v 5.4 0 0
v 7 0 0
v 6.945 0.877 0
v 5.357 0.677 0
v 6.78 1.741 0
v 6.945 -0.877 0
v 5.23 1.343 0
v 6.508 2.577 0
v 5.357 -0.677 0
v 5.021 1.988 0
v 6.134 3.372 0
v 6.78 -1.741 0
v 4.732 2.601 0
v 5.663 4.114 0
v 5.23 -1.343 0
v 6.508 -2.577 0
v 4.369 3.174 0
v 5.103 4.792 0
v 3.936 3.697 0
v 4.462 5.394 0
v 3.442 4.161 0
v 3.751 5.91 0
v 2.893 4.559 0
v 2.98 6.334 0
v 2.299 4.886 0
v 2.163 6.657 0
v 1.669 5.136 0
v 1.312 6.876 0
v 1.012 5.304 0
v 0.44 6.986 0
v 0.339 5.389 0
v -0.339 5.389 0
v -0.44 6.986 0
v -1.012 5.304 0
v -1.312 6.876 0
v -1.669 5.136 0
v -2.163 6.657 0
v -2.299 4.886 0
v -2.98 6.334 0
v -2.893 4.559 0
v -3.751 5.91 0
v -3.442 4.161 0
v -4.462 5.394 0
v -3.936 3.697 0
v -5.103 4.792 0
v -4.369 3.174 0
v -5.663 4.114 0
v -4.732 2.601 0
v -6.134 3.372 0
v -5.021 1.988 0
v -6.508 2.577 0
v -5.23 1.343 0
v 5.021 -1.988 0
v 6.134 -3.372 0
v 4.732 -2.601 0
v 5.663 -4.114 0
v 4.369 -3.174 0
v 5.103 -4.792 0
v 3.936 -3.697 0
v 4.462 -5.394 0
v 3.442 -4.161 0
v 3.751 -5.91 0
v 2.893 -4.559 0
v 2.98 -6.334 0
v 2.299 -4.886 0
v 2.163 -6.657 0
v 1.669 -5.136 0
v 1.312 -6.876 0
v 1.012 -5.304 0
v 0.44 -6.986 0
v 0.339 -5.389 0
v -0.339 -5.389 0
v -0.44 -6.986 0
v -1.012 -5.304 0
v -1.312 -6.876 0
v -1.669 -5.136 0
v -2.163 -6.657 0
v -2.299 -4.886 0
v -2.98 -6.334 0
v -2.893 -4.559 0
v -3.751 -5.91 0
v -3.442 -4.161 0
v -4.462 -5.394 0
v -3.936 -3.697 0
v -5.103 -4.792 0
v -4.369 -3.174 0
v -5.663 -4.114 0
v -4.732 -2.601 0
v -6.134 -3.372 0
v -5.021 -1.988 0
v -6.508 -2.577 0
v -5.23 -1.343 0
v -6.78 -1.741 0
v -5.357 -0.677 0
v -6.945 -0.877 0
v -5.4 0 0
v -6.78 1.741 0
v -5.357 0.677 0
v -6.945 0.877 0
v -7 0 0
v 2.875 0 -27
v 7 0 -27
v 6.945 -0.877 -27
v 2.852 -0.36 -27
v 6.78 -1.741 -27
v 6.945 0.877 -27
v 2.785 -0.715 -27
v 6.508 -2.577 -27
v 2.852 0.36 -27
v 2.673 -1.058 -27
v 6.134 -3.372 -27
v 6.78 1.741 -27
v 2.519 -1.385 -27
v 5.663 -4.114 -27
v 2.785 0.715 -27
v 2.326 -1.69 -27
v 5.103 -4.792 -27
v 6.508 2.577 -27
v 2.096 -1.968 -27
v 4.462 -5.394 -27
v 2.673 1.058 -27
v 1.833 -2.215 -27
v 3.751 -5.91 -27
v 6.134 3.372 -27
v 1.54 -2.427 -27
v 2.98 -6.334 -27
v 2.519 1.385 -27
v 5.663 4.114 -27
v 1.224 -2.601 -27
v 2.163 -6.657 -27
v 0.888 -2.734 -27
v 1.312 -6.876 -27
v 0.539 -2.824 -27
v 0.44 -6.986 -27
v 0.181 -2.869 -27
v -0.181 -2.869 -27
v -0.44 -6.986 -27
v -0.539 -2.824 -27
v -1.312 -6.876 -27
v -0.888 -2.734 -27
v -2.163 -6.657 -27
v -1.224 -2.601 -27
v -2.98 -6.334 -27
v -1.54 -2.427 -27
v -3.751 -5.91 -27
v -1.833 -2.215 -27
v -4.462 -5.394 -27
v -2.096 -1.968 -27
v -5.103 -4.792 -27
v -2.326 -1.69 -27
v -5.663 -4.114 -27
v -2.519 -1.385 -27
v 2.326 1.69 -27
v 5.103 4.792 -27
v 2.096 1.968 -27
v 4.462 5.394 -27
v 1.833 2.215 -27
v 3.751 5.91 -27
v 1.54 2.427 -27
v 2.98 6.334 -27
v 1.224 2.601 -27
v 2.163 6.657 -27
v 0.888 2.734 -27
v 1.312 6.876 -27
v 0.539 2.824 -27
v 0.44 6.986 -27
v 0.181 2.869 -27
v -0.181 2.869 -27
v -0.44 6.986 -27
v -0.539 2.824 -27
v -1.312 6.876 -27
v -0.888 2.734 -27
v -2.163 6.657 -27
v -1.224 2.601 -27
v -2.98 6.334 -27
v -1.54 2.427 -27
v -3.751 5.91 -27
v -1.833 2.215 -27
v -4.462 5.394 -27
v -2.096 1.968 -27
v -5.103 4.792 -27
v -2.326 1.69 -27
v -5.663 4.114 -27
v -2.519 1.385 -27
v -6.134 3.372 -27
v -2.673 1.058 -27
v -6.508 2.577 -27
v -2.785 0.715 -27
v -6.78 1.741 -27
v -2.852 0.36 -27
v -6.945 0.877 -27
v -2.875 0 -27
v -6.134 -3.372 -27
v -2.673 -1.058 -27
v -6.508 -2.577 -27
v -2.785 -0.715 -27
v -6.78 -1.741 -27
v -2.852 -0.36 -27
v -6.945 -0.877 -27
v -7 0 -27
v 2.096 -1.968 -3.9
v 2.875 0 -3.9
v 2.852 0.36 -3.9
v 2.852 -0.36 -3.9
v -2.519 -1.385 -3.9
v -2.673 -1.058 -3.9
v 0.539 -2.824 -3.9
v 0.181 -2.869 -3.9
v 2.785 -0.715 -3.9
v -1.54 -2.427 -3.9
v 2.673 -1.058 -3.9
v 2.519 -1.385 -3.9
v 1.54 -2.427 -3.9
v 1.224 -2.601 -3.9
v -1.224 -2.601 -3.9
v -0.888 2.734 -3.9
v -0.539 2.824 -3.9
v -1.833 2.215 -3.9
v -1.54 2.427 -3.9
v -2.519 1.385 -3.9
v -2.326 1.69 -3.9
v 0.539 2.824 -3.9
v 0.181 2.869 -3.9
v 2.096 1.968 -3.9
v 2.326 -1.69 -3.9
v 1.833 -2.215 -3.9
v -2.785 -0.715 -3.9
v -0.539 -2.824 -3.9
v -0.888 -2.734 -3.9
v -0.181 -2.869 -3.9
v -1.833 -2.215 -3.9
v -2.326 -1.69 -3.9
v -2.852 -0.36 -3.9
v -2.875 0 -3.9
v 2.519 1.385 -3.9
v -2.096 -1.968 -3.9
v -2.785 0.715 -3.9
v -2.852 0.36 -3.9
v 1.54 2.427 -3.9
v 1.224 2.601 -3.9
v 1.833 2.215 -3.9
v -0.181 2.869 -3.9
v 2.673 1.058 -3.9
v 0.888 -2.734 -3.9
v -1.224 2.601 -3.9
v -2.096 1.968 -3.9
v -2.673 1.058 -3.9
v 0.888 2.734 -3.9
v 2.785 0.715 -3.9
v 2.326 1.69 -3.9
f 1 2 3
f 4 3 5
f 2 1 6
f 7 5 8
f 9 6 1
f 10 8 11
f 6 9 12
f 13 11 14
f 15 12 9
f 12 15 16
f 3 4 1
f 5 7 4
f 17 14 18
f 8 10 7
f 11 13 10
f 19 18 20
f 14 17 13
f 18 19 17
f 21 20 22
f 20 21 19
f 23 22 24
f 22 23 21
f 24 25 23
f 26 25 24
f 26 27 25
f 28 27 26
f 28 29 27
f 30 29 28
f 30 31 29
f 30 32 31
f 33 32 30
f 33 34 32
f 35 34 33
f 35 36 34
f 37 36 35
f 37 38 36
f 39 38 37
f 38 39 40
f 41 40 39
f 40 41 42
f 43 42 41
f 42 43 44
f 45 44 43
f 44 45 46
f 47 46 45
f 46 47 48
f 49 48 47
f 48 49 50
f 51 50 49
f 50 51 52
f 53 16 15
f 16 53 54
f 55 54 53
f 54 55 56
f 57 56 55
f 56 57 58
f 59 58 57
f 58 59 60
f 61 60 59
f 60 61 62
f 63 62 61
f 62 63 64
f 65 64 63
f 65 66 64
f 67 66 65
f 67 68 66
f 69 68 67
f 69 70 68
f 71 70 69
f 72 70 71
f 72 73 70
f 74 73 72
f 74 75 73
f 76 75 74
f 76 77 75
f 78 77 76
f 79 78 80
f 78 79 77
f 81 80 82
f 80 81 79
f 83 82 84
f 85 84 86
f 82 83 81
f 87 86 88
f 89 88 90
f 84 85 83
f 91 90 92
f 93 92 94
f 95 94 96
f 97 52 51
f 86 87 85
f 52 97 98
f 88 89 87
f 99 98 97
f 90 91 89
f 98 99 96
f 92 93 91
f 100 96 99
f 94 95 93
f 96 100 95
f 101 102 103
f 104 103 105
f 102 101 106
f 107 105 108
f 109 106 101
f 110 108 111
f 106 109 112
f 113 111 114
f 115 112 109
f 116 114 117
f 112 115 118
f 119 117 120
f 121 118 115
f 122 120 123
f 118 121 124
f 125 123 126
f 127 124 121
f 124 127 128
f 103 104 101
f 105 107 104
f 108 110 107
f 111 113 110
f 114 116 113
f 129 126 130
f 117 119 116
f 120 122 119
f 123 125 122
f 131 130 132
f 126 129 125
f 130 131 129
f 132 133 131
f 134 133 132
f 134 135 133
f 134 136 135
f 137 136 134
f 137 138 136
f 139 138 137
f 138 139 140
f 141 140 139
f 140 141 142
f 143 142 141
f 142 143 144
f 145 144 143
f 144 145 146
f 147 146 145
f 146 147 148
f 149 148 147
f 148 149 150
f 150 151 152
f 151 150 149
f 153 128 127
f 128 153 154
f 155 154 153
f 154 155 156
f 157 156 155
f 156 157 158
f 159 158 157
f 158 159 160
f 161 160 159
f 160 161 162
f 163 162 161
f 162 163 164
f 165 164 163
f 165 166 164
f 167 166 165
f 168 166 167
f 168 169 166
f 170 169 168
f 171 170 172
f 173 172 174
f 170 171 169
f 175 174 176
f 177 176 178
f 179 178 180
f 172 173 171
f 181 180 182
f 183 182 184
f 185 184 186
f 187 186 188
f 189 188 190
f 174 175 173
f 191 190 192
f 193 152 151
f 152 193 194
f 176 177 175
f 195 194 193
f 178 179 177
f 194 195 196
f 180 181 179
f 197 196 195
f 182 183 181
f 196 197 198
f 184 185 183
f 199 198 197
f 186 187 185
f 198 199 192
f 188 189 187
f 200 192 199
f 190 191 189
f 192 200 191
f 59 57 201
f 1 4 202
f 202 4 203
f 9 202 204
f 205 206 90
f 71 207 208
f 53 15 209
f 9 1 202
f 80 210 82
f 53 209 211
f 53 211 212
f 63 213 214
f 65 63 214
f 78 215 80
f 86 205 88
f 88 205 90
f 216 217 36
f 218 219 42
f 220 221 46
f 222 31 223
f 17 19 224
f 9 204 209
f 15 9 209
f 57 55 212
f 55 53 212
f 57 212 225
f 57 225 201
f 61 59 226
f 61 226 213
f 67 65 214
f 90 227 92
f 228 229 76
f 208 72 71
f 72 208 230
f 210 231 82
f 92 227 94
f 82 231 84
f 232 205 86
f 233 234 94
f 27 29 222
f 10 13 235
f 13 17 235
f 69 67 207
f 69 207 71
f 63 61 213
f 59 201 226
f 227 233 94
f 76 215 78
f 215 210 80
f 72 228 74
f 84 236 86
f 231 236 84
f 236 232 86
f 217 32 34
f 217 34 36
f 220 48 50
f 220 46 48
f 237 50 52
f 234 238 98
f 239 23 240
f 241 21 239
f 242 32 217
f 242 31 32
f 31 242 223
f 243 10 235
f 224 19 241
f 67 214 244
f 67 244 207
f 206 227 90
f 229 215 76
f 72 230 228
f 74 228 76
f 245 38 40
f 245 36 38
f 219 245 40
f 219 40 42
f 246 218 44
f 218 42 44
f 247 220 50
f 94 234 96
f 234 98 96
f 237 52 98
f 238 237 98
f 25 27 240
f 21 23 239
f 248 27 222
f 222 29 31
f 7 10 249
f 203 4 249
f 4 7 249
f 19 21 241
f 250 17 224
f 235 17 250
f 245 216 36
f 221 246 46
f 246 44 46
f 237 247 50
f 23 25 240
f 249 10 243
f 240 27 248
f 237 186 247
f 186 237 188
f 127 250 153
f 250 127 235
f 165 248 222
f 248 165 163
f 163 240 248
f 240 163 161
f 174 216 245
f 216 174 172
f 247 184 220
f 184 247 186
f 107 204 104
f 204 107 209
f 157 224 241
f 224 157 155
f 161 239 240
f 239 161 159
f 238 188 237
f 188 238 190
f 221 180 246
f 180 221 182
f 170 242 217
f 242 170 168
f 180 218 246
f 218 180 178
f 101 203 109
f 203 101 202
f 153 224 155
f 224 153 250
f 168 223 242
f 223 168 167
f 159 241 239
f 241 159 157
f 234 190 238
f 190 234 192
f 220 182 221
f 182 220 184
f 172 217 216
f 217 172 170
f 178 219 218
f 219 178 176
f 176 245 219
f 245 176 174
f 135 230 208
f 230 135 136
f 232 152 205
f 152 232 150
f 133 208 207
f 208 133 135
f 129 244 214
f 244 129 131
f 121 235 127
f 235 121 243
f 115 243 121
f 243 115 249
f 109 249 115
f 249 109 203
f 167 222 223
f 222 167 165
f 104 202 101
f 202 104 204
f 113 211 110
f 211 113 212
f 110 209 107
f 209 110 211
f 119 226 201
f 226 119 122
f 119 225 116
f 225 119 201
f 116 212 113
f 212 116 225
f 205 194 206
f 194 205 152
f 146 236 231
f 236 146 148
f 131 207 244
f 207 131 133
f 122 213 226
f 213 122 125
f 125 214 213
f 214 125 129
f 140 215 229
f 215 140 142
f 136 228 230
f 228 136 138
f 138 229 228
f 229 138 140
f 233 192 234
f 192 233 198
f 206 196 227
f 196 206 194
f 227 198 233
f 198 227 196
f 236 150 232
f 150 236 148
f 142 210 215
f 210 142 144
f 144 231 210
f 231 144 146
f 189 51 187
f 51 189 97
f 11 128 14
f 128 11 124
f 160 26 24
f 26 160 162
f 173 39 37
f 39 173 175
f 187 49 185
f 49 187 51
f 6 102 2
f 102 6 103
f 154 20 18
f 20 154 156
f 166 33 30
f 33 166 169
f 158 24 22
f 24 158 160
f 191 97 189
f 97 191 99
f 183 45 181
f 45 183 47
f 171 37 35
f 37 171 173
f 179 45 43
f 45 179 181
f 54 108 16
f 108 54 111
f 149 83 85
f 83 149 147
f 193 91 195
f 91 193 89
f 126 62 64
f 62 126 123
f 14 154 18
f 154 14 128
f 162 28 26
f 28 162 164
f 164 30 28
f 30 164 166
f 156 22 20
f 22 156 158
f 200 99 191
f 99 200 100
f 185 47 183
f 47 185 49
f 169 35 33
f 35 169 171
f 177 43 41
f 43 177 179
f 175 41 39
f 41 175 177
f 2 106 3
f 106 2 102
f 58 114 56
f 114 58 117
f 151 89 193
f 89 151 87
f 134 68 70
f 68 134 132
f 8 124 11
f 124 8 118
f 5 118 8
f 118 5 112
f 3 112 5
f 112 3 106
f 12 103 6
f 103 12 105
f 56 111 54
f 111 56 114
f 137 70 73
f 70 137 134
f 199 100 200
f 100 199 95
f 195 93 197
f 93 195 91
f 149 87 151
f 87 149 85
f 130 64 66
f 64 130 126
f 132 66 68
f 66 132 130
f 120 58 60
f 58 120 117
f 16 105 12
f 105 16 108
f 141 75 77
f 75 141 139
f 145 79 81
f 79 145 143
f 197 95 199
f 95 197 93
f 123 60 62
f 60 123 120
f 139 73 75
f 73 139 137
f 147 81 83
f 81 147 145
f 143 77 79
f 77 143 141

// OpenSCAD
$fn = 50;


difference() {
	union() {
		translate(v = [0, 0, -27.0000000000]) {
			cylinder(h = 27, r = 7.0000000000);
		}
		cylinder(h = 0, r = 16.0000000000);
	}
	union() {
		translate(v = [0, 0, 0]) {
			rotate(a = [0, 0, 0]) {
				difference() {
					union() {
						#translate(v = [0, 0, -27.0000000000]) {
							cylinder(h = 27, r = 2.6000000000);
						}
						#translate(v = [0, 0, -3.9000000000]) {
							cylinder(h = 3.9000000000, r = 7.0000000000, r1 = 2.8750000000, r2 = 5.4000000000);
						}
						#translate(v = [0, 0, -27.0000000000]) {
							cylinder(h = 27, r = 2.8750000000);
						}
						#translate(v = [0, 0, -27.0000000000]) {
							cylinder(h = 27, r = 2.6000000000);
						}
					}
					union();
				}
			}
		}
	}
}
